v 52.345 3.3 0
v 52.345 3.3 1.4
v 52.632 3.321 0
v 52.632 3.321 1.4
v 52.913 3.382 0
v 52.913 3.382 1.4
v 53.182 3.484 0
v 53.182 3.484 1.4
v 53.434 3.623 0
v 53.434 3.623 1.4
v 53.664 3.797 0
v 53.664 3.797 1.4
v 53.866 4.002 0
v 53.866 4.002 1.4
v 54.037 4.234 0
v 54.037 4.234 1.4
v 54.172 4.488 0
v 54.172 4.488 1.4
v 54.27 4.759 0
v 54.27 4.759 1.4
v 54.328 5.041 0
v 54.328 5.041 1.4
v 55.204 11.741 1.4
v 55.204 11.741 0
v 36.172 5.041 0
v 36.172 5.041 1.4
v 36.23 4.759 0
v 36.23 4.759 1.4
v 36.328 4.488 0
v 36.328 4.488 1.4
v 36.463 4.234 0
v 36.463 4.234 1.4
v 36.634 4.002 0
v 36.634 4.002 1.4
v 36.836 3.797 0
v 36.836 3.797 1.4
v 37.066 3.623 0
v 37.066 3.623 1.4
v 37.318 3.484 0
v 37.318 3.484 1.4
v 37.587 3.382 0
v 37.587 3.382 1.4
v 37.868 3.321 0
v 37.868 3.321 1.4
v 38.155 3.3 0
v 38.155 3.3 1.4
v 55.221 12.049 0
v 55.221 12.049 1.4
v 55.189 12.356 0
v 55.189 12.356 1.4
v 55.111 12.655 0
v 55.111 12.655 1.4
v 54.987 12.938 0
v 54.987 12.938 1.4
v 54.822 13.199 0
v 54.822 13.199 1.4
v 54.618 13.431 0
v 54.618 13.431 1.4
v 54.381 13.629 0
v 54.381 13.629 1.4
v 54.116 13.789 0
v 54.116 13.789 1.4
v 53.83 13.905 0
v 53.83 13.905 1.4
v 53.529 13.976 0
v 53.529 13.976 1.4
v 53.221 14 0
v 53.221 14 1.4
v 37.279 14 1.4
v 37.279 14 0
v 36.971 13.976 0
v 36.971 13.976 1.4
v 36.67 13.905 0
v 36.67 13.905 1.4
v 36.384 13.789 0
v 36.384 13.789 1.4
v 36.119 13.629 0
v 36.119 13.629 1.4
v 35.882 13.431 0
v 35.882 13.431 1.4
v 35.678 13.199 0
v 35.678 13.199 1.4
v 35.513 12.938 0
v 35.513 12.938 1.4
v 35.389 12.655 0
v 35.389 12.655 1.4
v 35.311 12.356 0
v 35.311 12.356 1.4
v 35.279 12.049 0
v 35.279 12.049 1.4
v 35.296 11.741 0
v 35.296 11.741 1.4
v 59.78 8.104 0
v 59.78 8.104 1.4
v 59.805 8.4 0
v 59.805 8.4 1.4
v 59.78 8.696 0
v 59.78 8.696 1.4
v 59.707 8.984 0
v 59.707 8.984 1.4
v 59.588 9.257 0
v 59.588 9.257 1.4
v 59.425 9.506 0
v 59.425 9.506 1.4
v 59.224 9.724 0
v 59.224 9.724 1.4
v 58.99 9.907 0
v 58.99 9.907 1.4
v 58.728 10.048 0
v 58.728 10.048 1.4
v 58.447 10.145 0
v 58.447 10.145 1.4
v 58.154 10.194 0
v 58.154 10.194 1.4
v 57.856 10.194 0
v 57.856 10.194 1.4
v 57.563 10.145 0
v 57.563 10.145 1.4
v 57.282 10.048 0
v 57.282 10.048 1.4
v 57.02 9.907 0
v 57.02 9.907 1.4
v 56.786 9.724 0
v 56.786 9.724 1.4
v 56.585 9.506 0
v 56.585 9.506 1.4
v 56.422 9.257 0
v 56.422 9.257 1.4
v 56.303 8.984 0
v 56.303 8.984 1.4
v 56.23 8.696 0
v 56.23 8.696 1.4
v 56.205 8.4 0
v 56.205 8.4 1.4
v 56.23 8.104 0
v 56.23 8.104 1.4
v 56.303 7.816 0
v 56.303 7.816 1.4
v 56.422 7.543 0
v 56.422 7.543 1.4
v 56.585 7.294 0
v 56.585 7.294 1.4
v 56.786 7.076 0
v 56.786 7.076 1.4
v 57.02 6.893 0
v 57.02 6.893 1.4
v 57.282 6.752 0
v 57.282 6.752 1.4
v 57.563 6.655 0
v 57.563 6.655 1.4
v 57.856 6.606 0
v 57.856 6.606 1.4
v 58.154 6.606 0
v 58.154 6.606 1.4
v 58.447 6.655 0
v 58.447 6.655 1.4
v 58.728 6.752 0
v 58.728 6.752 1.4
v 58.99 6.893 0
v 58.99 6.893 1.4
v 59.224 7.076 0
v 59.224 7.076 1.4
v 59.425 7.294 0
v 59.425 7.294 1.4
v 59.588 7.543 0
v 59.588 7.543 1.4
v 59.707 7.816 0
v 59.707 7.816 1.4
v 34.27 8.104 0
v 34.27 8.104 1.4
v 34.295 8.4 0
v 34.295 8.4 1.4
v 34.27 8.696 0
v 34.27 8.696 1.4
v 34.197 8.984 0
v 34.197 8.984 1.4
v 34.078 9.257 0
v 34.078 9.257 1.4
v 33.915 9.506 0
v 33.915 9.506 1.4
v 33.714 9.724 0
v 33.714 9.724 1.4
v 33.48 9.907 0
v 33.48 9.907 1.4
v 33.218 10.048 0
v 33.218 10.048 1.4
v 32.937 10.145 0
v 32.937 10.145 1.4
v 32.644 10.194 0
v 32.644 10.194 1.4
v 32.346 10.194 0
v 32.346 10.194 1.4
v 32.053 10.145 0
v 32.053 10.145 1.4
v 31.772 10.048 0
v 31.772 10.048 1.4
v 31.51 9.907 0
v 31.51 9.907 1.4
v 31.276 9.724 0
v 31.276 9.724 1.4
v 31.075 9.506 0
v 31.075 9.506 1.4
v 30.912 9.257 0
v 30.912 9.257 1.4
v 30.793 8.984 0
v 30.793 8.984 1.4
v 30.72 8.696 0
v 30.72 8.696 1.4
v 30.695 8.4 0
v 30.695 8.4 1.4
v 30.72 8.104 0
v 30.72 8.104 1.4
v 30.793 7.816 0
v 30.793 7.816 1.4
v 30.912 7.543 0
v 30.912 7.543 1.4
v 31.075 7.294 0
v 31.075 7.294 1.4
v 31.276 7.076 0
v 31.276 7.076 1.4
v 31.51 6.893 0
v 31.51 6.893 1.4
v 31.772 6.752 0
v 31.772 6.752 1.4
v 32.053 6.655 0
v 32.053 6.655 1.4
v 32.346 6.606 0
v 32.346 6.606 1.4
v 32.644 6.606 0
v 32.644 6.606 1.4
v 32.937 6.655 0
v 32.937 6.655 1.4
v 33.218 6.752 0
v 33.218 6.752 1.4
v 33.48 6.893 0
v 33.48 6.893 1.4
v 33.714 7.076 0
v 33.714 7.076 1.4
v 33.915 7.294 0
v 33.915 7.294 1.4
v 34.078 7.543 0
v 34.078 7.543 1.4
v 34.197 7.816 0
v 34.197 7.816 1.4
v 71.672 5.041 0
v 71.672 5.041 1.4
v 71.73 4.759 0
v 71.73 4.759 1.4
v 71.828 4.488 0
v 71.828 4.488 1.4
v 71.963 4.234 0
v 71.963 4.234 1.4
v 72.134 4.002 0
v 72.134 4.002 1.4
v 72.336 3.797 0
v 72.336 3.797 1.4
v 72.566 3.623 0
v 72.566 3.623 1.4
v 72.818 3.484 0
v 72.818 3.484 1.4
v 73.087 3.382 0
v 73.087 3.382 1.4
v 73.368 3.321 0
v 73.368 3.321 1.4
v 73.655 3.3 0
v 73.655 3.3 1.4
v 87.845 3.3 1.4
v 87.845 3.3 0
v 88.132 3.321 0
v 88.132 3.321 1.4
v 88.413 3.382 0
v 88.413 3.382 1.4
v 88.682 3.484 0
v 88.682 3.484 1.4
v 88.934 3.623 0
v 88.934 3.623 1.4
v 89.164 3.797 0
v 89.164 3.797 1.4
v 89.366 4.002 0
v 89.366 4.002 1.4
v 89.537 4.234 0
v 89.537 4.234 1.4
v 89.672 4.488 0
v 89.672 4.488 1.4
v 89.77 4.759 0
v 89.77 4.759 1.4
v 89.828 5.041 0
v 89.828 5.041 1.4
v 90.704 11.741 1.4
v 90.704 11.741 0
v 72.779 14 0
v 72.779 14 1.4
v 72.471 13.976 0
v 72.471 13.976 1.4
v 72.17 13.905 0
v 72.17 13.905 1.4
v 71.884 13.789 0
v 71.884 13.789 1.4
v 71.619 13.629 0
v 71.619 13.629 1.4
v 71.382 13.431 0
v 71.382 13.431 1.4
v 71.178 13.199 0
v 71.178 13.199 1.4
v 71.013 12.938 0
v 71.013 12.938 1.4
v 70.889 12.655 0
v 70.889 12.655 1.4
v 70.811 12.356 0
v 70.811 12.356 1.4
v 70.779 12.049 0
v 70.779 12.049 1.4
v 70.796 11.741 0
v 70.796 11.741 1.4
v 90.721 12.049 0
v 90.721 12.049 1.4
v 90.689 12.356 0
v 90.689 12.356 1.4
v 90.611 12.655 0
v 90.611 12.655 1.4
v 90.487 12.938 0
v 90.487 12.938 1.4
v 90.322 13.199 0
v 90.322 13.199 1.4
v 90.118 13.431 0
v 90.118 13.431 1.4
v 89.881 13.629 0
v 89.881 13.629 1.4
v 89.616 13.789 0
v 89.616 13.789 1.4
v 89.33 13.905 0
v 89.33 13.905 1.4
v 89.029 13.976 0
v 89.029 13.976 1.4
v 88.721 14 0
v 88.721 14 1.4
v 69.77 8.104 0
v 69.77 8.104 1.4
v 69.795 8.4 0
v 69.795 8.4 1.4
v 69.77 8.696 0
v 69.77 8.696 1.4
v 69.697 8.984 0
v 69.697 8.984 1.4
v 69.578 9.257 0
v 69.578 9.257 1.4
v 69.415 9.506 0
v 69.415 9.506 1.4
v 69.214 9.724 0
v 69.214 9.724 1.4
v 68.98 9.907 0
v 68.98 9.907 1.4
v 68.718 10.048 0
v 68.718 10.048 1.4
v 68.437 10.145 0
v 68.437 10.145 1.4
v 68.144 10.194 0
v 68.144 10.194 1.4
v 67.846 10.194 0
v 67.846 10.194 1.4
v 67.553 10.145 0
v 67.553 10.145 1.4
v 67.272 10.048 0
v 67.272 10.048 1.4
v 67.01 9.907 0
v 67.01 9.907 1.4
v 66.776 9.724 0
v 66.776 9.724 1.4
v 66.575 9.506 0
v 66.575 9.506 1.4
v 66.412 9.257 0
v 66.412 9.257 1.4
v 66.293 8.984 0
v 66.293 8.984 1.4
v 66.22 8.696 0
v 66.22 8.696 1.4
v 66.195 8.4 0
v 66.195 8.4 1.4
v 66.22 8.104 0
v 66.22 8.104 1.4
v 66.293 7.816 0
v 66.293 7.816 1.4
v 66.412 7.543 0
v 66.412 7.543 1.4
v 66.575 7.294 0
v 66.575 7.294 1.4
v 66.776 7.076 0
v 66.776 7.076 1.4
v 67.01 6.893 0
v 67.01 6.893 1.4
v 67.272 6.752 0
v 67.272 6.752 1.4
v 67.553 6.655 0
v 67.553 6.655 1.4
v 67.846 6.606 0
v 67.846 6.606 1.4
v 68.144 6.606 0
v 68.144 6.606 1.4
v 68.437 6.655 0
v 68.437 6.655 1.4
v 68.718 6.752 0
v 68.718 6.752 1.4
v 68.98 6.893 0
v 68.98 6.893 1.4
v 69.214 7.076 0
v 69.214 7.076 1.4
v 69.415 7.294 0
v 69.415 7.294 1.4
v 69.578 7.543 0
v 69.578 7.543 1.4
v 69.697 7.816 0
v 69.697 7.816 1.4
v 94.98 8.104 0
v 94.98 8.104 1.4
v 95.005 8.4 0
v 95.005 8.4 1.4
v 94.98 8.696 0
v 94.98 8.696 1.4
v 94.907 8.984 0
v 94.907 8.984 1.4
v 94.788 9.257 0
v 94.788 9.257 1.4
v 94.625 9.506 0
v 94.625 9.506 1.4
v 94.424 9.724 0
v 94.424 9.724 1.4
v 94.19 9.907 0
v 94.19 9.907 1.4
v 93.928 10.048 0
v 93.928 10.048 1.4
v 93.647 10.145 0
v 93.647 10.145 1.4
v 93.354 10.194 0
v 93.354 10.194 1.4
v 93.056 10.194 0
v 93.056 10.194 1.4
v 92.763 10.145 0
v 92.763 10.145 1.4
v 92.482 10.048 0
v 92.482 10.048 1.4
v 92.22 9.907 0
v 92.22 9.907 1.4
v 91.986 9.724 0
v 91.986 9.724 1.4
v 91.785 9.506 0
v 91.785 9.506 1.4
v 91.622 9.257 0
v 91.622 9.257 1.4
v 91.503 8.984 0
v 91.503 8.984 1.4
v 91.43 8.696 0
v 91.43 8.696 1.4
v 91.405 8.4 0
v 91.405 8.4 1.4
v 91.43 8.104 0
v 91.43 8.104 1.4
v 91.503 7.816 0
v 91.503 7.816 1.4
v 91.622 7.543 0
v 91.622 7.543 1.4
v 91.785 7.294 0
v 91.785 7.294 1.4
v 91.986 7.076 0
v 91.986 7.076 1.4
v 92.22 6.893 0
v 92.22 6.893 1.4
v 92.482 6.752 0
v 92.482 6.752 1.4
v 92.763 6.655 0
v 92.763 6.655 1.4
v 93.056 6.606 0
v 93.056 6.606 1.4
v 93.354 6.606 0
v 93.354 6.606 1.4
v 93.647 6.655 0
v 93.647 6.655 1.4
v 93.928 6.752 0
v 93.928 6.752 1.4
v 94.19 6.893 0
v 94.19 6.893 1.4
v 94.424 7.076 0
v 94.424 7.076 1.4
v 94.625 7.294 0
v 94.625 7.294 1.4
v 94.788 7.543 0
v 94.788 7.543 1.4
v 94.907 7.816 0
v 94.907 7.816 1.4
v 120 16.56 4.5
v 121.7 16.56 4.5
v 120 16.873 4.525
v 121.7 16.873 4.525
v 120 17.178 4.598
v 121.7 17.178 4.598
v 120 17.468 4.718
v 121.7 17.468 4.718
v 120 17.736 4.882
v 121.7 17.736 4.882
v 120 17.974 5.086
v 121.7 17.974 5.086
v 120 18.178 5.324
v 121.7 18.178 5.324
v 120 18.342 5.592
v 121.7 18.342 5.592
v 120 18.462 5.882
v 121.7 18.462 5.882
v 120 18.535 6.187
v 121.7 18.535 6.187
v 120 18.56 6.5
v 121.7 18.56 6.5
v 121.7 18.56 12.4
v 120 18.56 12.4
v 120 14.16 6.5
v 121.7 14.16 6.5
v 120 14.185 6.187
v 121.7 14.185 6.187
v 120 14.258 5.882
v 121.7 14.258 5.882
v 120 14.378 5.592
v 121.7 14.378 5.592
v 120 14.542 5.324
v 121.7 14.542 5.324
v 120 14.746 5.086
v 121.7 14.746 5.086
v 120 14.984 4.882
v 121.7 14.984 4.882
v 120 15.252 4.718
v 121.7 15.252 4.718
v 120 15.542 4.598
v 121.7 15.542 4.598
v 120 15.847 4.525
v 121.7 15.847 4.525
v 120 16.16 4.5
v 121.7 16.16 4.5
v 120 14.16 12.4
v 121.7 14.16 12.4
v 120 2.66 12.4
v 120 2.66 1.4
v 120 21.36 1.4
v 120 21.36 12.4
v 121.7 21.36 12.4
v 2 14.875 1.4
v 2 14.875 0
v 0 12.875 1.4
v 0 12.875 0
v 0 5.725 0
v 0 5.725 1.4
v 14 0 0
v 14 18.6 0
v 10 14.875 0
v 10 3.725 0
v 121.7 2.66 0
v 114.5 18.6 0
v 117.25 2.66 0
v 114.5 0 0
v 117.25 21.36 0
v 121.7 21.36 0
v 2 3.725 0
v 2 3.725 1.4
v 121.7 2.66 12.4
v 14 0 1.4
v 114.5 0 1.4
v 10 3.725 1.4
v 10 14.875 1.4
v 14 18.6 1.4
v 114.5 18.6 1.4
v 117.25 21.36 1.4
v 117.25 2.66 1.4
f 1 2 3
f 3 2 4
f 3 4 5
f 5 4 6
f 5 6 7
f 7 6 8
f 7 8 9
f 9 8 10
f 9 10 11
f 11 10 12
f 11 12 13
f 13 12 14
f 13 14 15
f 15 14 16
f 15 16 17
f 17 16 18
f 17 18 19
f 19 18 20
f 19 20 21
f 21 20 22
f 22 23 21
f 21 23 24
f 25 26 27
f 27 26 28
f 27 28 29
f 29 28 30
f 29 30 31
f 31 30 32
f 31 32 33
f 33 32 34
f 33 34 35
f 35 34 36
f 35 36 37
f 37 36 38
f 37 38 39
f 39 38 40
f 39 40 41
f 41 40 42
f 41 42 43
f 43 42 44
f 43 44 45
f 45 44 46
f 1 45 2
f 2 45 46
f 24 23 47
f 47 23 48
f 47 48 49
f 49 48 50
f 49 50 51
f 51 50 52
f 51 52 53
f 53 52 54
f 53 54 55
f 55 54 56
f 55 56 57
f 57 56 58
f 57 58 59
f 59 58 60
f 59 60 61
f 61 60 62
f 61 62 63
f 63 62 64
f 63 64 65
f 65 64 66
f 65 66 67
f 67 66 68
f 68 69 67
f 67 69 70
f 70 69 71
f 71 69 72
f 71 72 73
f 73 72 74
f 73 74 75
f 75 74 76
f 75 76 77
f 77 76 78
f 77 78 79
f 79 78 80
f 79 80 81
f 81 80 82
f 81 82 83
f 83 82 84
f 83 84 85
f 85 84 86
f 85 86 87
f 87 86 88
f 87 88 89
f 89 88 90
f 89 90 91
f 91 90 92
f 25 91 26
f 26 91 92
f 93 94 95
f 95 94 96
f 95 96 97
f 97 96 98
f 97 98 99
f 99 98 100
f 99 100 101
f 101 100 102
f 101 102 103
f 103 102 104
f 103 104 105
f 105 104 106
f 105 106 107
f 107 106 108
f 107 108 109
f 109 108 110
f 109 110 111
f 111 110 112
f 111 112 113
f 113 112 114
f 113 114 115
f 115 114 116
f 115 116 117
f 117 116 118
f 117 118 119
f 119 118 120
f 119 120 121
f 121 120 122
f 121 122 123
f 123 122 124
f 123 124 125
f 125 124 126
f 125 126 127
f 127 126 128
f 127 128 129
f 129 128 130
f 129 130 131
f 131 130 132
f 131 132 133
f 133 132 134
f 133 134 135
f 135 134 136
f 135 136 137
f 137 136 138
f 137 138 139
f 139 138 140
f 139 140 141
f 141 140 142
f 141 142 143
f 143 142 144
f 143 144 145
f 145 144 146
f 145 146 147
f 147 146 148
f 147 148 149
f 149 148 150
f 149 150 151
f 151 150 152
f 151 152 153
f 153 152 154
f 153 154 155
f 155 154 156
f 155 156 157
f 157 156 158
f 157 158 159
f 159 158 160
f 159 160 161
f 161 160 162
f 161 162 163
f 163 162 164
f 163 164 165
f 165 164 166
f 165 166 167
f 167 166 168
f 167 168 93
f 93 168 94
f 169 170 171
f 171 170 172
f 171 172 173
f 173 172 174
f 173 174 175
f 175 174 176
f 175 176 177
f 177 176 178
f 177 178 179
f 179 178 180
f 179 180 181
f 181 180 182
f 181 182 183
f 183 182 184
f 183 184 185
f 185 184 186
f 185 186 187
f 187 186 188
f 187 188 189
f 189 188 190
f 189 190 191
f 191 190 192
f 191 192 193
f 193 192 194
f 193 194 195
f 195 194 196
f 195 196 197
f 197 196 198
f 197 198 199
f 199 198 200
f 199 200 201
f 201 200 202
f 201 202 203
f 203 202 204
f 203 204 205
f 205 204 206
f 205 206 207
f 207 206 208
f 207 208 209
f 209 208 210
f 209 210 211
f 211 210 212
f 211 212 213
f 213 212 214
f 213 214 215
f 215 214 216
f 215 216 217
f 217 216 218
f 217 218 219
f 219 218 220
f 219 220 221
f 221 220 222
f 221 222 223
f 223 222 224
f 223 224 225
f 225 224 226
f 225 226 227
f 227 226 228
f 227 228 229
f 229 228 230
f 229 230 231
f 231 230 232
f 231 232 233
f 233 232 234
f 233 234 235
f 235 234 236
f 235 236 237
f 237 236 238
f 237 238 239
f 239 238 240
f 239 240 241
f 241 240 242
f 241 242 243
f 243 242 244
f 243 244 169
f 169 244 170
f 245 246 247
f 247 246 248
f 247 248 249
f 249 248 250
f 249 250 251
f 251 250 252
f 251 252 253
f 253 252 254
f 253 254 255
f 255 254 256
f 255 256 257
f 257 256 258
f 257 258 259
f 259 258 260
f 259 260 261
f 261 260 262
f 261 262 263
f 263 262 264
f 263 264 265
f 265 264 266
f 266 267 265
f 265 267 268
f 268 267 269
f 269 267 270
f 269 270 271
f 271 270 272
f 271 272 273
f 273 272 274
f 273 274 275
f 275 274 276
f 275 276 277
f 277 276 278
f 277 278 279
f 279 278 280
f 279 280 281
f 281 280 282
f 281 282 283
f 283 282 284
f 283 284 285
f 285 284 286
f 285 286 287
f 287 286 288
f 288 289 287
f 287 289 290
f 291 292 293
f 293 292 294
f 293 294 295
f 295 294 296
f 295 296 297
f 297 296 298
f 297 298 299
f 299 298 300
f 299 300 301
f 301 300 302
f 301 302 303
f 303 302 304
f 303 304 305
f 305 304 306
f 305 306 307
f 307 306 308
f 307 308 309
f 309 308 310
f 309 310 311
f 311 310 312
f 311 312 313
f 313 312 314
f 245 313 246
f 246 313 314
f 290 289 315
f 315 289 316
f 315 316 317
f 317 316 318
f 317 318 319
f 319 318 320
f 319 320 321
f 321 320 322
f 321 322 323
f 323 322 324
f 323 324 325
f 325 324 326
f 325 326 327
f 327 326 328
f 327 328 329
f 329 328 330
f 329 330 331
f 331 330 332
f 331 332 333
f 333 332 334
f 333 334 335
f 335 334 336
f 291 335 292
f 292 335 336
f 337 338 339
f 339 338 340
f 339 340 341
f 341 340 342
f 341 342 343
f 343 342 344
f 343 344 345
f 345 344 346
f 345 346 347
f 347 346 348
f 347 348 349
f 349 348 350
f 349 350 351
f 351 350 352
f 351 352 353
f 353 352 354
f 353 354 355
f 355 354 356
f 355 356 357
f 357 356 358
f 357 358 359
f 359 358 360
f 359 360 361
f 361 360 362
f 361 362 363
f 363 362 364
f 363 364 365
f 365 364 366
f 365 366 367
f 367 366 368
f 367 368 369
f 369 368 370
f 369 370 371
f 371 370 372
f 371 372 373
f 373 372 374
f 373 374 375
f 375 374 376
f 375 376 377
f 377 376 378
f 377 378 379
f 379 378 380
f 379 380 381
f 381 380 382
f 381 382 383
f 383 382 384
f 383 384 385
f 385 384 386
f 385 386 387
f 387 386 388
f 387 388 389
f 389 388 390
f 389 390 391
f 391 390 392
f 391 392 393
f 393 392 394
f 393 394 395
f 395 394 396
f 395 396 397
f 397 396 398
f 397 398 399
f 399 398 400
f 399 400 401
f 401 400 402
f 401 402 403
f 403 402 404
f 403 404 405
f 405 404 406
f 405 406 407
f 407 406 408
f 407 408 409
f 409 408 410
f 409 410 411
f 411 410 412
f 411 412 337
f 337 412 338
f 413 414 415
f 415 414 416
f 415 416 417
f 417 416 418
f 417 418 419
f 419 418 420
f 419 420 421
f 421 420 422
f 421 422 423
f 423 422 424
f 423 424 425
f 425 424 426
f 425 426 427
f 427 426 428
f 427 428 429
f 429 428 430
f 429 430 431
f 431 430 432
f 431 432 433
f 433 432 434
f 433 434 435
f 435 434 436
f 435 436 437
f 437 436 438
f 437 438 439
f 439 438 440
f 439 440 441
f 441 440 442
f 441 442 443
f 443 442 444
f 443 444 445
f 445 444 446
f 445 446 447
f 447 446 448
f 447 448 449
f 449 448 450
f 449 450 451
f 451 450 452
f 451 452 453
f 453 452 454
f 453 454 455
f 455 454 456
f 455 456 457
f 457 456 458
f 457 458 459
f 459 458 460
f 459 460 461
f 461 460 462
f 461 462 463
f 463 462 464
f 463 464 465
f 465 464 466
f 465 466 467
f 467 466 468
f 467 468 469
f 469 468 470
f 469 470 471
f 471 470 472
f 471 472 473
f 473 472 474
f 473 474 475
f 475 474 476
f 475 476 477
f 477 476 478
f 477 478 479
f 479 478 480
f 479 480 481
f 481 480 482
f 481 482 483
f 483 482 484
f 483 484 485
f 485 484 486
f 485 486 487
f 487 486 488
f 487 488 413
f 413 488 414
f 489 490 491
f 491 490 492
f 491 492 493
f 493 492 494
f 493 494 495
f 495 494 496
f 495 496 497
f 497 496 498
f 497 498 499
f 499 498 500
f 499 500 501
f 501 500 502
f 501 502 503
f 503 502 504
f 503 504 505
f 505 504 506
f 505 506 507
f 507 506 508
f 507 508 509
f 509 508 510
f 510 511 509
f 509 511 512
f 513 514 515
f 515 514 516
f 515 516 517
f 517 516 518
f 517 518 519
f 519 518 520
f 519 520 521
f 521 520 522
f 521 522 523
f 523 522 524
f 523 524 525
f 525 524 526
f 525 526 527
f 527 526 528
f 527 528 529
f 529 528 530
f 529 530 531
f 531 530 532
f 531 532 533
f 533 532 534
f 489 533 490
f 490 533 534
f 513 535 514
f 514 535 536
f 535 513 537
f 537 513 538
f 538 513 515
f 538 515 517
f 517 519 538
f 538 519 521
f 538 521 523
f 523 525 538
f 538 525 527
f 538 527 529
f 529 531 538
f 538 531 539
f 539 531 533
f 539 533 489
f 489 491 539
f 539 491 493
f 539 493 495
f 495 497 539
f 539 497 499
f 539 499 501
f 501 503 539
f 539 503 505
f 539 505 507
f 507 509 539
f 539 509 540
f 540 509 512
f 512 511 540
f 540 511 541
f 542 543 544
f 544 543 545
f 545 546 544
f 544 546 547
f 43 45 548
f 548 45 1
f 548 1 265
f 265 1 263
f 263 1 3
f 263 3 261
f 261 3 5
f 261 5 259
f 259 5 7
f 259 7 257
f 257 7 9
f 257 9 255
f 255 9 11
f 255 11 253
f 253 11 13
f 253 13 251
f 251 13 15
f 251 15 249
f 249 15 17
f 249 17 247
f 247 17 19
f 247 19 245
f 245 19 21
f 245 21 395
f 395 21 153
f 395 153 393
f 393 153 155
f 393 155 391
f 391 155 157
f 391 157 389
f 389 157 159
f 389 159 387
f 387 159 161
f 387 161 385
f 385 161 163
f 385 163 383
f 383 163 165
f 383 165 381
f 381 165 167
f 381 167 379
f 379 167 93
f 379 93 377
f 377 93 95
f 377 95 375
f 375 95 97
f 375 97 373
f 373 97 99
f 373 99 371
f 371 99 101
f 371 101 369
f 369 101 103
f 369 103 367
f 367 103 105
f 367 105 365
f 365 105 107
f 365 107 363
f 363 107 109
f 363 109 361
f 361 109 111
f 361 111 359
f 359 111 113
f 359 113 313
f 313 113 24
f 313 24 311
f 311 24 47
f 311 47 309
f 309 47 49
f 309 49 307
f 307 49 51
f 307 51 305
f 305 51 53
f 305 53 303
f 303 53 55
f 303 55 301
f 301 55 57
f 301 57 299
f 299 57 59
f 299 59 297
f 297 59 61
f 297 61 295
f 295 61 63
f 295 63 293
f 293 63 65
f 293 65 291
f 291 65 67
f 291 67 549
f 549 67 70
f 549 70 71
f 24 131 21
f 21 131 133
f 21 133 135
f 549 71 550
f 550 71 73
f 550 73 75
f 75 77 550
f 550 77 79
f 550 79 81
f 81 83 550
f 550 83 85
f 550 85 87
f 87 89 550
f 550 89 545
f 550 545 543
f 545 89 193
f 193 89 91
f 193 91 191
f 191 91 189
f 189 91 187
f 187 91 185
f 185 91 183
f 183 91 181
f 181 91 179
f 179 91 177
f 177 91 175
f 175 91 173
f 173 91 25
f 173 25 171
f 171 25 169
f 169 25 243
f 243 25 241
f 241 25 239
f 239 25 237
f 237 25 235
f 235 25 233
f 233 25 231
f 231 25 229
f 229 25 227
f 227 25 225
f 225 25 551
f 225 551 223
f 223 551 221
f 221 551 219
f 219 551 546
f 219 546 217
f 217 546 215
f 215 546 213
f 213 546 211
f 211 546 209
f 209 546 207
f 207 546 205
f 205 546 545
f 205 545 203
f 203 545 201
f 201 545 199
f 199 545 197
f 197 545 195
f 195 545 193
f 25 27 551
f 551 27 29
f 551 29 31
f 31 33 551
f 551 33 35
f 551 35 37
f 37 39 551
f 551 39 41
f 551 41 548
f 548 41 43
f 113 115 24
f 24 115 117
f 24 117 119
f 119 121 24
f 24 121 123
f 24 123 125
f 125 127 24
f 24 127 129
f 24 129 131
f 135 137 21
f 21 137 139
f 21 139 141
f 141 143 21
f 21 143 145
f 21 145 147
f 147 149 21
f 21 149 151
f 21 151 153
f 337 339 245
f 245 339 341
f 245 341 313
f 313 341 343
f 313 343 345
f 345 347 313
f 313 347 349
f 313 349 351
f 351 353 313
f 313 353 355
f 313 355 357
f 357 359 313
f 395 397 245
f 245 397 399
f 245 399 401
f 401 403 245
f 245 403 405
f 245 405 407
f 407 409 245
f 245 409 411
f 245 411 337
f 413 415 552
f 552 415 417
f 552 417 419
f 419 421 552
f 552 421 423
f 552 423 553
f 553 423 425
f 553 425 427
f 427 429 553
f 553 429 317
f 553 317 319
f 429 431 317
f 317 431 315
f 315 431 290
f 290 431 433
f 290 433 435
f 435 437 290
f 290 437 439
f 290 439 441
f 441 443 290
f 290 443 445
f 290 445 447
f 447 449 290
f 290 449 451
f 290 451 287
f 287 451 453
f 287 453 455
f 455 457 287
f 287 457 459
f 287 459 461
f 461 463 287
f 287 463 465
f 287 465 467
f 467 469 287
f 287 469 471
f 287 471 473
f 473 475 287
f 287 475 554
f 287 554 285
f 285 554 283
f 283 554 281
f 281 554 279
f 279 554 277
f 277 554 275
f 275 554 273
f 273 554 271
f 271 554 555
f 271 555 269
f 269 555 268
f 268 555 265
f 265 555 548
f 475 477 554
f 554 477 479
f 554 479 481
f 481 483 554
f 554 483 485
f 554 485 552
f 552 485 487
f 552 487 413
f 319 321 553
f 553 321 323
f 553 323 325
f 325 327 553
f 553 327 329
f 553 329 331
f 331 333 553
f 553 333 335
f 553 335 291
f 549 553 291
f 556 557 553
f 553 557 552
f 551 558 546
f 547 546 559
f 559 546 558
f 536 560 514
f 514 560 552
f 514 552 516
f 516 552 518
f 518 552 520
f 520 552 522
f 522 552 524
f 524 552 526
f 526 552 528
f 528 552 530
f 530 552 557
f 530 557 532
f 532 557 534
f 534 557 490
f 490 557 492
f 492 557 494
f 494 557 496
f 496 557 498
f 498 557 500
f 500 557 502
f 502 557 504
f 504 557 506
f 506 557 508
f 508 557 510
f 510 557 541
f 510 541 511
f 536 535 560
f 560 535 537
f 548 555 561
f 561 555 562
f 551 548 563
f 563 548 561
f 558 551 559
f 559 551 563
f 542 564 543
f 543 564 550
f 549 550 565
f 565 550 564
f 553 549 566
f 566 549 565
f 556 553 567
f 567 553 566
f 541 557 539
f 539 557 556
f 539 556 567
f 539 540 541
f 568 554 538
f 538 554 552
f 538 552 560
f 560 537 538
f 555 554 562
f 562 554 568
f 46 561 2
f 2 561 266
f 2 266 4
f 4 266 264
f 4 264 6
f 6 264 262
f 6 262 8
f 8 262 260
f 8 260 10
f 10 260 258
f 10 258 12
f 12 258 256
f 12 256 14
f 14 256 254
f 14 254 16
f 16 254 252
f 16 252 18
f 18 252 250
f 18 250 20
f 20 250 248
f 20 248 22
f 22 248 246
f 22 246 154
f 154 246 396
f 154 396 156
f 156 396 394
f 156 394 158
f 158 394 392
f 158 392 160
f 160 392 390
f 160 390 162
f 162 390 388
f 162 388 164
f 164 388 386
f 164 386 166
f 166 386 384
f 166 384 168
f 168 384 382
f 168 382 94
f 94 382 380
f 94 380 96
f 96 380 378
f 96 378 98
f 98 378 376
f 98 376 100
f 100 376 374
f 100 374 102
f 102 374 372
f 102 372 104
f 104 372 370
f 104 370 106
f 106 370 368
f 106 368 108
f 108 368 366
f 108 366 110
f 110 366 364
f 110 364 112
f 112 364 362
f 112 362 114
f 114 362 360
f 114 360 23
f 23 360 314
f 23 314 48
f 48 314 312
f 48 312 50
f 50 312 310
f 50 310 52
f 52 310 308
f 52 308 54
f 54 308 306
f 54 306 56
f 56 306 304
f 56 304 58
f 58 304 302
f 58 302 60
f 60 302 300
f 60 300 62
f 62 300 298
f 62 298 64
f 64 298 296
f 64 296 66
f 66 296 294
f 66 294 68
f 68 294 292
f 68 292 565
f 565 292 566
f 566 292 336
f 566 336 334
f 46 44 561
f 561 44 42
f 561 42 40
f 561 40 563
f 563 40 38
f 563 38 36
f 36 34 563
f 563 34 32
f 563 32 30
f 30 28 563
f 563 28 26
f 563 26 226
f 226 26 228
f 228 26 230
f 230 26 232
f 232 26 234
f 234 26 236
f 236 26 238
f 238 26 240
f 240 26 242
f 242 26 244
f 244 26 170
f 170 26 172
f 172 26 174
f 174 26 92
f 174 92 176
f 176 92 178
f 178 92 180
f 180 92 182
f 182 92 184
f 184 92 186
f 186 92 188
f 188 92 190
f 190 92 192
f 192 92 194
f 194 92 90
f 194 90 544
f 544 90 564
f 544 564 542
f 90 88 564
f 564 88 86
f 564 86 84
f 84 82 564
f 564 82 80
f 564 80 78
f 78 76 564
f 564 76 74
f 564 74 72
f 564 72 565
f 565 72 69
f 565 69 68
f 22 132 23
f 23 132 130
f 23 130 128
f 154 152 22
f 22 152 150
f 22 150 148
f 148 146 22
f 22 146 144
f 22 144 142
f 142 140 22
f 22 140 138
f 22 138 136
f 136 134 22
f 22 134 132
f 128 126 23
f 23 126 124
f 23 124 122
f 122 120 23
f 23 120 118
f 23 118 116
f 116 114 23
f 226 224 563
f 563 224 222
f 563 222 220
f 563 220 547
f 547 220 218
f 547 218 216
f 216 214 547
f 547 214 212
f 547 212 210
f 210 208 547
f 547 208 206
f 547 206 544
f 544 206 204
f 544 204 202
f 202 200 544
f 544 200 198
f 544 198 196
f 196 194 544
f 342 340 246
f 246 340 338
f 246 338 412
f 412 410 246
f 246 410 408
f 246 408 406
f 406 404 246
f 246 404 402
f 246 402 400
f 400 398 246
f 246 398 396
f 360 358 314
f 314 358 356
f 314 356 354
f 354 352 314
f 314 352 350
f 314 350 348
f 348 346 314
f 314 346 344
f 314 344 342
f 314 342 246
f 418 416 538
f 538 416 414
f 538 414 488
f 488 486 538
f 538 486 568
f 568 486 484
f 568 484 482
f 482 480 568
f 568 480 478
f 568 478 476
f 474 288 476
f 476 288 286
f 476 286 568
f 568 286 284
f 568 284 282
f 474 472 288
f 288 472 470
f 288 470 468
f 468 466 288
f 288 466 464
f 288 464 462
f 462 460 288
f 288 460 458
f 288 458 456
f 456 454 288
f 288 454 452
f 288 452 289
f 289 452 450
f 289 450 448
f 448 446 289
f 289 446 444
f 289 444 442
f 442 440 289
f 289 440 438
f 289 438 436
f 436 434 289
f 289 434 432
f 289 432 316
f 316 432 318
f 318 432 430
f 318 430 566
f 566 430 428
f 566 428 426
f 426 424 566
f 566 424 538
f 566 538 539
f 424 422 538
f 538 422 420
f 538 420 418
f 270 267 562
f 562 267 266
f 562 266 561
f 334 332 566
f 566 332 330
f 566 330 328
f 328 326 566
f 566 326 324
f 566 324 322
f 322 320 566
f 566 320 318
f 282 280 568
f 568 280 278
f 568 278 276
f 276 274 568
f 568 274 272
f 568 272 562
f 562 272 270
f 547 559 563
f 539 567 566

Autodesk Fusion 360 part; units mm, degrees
sketch "스케치1" plane through (0, 0, 0) normal (0, 0, 1) x (1, 0, 0)
  line L0 (14, 18.6) -> (114.5, 18.6)
  line L1 (114.5, 18.6) -> (114.5, 0)
  line L2 (114.5, 0) -> (14, 0)
  line L3 (14, 0) -> (14, 18.6)
  line L4 (0, 14.875) -> (10, 14.875)
  line L5 (10, 14.875) -> (10, 3.725)
  line L6 (10, 3.725) -> (0, 3.725)
  line L7 (0, 3.725) -> (0, 14.875)
  line L8 (0, 9.3) -> (10, 9.3) construction
  line L9 (10, 14.875) -> (14, 18.6)
  line L10 (10, 3.725) -> (14, 0)
  line L11 (1.75, 0) -> (22.5, 0)
  line L12 (0, 1.75) -> (0, 22.5)
  line L13 (120, 21.36) -> (117.25, 21.36)
  line L14 (117.25, 21.36) -> (117.25, 2.66)
  line L15 (117.25, 2.66) -> (120, 2.66)
  line L16 (120, 2.66) -> (120, 21.36)
  line L17 (114.5, 0) -> (144, 0) construction
  line L18 (114.5, 18.6) -> (117.25, 21.36)
  line L19 (114.5, 0) -> (117.25, 2.66)
  line L20 (120, 21.36) -> (121.7, 21.36)
  line L21 (121.7, 21.36) -> (121.7, 2.66)
  line L22 (121.7, 2.66) -> (120, 2.66)
  line L23 (120, 2.66) -> (120, 21.36)
  dimension "d1" = 100.5
  dimension "d2" = 18.6
  dimension "d3" = 10
  dimension "d4" = 11.15
  dimension "d5" = 4
  dimension "d6" = 18.7
  dimension "d7" = 2.66
  dimension "d8" = 2.75
  dimension "d9" = 2.75
  dimension "d10" = 1.7
extrude "돌출1" add sketch "스케치1" along normal blind 1.4 contours L0 L1 L2 L3 L11 | L3 L5 L9 L10 | L1 L14 L18 L19 | L4 L5 L6 L7 L12 | L13 L14 L15 L16 L23
extrude "돌출2" add sketch "스케치1" along normal blind 12.4 contours L16 L20 L21 L22 L23
chamfer "모따기1" distance 2 angle 45 2 edges at (0, 3.725, 0.7) (0, 14.875, 0.7)
sketch "스케치2" plane through (121.7, 0, 0) normal (1, 0, 0) x (0, 1, 0)
  line L0 (2.66, 0) -> (21.36, 0)
  line L1 (21.36, 0) -> (21.36, 12.4)
  line L2 (21.36, 12.4) -> (2.66, 12.4)
  line L3 (2.66, 12.4) -> (2.66, 0)
  line L4 (14.16, 12.4) -> (18.56, 12.4)
  line L5 (18.56, 12.4) -> (18.56, 4.5)
  line L6 (18.56, 4.5) -> (14.16, 4.5)
  line L7 (14.16, 4.5) -> (14.16, 12.4)
  dimension "d16" = 2.8
  dimension "d17" = 4.4
  dimension "d18" = 7.9
extrude "돌출3" cut sketch "스케치2" against normal blind 3 contours L2 L4 L5 L6 L7
fillet "모깎기1" radius 2 2 edges at (120.85, 14.16, 4.5) (120.85, 18.56, 4.5)
sketch "스케치3" plane through (0, 0, 1.4) normal (0, 0, 1) x (-1, 0, 0)
  line L0 (-2, -14.875) -> (0, -12.875)
  line L1 (0, -12.875) -> (0, -5.725)
  line L2 (0, -5.725) -> (-2, -3.725)
  line L3 (-2, -3.725) -> (-10, -3.725)
  line L4 (-10, -3.725) -> (-14, 0)
  line L5 (-14, 0) -> (-114.5, 0)
  line L6 (-114.5, 0) -> (-117.25, -2.66)
  line L7 (-117.25, -2.66) -> (-120, -2.66)
  line L8 (-120, -2.66) -> (-120, -21.36)
  line L9 (-120, -21.36) -> (-117.25, -21.36)
  line L10 (-117.25, -21.36) -> (-114.5, -18.6)
  line L11 (-114.5, -18.6) -> (-14, -18.6)
  line L12 (-14, -18.6) -> (-10, -14.875)
  line L13 (-10, -14.875) -> (-2, -14.875)
  line L14 (7.5, -3.3) -> (-137.5, -3.3) construction
  line L15 (-114.5, 0) -> (-14, 0)
  line L16 (7.5, -14) -> (-137.5, -14) construction
  line L17 (-70.5, -14) -> (-91, -14)
  line L18 (-71.9, -3.3) -> (-89.6, -3.3)
  line L19 (-70.5, -14) -> (-71.9, -3.3)
  line L20 (-91, -14) -> (-89.6, -3.3)
  line L21 (-80.75, -32) -> (-80.75, 14) construction
  line L22 (-70.5, -26) -> (-70.5, 12) construction
  line L23 (-91, -26) -> (-91, 12) construction
  circle A0 centre (-67.995, -8.4) radius 1.8
  circle A1 centre (-93.205, -8.4) radius 1.8
  line L24 (-91.405, -12) -> (-91.405, -5.5195) construction
  line L25 (-69.795, -12) -> (-69.795, -5.5195) construction
  line L26 (-66.5, -6.6) -> (-95, -6.6) construction
  line L27 (-35, -14) -> (-55.5, -14)
  line L28 (-36.4, -3.3) -> (-54.1, -3.3)
  line L29 (-35, -14) -> (-36.4, -3.3)
  line L30 (-55.5, -14) -> (-54.1, -3.3)
  circle A2 centre (-32.495, -8.4) radius 1.8
  circle A3 centre (-58.005, -8.4) radius 1.8
  line L31 (-35, -26) -> (-35, 12) construction
  line L32 (-55.5, -26) -> (-55.5, 12) construction
  line L33 (-34.295, -12) -> (-34.295, -5.5195) construction
  line L34 (-56.205, -12) -> (-56.205, -5.5195) construction
  dimension "d23" = 3.3
  dimension "d24" = 10.7
  dimension "d25" = 20.5
  dimension "d26" = 17.7
  dimension "d27" = 29
  dimension "d28" = 3.6
  dimension "d30" = 0.705
  dimension "d31" = 0.405
  dimension "d32" = 3.3
  dimension "d37" = 3.6
  dimension "d38" = 0.705
  dimension "d39" = 0.705
  dimension "d40" = 15
extrude "돌출4" cut sketch "스케치3" against normal blind 2 contours L17 L18 L19 L20 | A0 | A1
fillet "모깎기2" radius 2 4 edges at (91, 14, 0.7) (70.5, 14, 0.7) (89.6, 3.3, 0.7) (71.9, 3.3, 0.7)
extrude "돌출5" cut sketch "스케치3" against normal blind 4 contours L27 L28 L29 L30 | A2 | A3
fillet "모깎기3" radius 2 4 edges at (35, 14, 0.7) (55.5, 14, 0.7) (36.4, 3.3, 0.7) (54.1, 3.3, 0.7)
